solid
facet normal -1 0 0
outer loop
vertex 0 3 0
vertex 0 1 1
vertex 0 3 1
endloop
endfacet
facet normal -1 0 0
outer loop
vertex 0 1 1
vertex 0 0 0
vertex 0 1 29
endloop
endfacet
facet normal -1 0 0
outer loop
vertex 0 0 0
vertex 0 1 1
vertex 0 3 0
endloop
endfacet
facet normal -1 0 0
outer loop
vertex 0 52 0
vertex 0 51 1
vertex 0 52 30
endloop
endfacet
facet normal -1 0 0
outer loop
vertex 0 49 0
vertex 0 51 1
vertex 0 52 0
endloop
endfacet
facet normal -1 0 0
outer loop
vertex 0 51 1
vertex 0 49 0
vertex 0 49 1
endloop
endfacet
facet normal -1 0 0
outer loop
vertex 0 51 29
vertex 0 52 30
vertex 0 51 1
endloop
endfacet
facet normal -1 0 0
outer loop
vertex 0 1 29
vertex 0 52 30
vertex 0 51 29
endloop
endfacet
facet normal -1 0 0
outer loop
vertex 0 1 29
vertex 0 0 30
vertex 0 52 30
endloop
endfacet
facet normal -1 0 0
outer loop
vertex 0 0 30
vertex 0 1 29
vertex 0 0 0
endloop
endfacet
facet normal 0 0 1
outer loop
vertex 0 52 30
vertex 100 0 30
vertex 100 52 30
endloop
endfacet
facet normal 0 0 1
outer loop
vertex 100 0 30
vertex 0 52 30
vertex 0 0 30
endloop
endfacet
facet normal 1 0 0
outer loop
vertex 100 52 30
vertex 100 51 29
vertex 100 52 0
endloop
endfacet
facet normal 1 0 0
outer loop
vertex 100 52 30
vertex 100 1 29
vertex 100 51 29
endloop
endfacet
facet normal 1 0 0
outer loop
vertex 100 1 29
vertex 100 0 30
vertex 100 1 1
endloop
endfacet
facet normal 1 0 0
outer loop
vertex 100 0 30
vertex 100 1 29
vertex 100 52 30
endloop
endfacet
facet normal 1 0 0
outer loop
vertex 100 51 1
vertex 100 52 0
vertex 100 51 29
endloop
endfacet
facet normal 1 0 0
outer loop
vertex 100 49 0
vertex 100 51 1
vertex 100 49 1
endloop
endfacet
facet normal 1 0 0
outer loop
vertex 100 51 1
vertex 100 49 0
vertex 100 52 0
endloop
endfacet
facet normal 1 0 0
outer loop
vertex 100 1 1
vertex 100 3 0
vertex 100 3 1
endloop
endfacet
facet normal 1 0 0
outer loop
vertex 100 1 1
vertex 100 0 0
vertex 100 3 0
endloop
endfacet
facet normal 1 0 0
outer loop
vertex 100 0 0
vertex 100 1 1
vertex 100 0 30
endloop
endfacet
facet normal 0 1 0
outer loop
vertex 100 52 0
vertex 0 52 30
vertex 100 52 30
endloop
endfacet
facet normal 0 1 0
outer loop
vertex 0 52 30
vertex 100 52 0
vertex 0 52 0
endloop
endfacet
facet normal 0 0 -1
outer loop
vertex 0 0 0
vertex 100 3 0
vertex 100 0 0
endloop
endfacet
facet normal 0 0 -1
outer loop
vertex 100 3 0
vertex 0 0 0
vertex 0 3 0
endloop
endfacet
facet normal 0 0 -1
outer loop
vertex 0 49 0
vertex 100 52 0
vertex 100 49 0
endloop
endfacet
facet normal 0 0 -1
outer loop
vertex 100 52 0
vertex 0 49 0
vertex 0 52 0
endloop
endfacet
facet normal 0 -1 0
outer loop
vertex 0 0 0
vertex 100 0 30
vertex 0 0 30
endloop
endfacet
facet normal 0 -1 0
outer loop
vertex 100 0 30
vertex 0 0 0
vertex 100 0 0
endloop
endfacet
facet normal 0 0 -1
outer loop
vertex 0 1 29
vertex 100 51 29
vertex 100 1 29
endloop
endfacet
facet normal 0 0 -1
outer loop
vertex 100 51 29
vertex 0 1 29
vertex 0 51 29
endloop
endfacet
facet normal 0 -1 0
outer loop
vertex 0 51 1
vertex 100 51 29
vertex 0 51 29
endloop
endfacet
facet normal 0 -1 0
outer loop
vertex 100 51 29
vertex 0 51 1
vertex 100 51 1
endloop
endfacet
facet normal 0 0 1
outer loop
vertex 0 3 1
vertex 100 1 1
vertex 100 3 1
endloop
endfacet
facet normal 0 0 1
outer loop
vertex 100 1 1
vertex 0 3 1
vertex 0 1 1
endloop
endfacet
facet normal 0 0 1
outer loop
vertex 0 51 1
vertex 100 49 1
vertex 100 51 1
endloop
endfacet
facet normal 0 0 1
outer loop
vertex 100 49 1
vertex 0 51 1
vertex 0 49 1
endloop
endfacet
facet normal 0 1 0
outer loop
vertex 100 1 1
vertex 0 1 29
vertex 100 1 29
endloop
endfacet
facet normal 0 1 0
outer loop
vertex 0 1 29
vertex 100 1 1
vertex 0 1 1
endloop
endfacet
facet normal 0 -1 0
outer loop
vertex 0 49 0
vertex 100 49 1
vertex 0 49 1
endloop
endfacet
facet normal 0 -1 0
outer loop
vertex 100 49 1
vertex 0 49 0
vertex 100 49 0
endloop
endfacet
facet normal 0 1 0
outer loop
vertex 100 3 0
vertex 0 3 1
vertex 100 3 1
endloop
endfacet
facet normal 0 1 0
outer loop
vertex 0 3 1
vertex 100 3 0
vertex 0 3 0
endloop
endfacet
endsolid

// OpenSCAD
//cover LED power board

difference()  {
    cube([100, 52, 30]);
    translate([0, 1, 1]) cube([100, 50, 28]);
    translate([0, 3, 0]) cube( [100, 46, 10]);
}
